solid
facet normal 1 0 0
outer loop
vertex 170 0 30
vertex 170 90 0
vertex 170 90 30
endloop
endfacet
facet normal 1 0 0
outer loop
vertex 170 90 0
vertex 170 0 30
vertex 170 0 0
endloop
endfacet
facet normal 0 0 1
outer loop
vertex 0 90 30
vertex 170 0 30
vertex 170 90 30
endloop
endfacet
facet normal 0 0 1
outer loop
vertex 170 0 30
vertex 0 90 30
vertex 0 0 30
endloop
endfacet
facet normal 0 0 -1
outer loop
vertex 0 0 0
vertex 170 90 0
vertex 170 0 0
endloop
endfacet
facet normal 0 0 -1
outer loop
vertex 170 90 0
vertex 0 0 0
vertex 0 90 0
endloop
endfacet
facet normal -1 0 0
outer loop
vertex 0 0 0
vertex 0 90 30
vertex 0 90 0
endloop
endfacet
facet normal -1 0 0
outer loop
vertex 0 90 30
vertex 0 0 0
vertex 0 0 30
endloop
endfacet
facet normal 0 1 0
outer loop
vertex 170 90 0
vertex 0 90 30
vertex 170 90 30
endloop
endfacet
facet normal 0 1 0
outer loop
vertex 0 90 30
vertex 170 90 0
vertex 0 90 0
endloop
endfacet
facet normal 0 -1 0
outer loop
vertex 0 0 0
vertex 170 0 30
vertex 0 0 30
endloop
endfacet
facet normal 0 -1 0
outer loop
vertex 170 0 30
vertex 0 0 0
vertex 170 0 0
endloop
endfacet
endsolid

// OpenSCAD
//wall=2;
//W=170;
//D=90;
//H=30;
//
//module main() {
//    difference() {
//        cube([W,D,H]);
//        #translate([wall,wall,0]) cube([W-2*wall,D/2-2*wall,H]);
//        #translate([wall,D/2,0]) cube([W-2*wall,D/2-wall,H]);
//    }
//}
//
//main();



WIDTH = 170;
DEPTH = 90;
HEIGHT = 30;

N=4;

difference() {
    cube([WIDTH, DEPTH, HEIGHT]);
    for (i = [1:N]) {
        echo(i);
    }   
}
